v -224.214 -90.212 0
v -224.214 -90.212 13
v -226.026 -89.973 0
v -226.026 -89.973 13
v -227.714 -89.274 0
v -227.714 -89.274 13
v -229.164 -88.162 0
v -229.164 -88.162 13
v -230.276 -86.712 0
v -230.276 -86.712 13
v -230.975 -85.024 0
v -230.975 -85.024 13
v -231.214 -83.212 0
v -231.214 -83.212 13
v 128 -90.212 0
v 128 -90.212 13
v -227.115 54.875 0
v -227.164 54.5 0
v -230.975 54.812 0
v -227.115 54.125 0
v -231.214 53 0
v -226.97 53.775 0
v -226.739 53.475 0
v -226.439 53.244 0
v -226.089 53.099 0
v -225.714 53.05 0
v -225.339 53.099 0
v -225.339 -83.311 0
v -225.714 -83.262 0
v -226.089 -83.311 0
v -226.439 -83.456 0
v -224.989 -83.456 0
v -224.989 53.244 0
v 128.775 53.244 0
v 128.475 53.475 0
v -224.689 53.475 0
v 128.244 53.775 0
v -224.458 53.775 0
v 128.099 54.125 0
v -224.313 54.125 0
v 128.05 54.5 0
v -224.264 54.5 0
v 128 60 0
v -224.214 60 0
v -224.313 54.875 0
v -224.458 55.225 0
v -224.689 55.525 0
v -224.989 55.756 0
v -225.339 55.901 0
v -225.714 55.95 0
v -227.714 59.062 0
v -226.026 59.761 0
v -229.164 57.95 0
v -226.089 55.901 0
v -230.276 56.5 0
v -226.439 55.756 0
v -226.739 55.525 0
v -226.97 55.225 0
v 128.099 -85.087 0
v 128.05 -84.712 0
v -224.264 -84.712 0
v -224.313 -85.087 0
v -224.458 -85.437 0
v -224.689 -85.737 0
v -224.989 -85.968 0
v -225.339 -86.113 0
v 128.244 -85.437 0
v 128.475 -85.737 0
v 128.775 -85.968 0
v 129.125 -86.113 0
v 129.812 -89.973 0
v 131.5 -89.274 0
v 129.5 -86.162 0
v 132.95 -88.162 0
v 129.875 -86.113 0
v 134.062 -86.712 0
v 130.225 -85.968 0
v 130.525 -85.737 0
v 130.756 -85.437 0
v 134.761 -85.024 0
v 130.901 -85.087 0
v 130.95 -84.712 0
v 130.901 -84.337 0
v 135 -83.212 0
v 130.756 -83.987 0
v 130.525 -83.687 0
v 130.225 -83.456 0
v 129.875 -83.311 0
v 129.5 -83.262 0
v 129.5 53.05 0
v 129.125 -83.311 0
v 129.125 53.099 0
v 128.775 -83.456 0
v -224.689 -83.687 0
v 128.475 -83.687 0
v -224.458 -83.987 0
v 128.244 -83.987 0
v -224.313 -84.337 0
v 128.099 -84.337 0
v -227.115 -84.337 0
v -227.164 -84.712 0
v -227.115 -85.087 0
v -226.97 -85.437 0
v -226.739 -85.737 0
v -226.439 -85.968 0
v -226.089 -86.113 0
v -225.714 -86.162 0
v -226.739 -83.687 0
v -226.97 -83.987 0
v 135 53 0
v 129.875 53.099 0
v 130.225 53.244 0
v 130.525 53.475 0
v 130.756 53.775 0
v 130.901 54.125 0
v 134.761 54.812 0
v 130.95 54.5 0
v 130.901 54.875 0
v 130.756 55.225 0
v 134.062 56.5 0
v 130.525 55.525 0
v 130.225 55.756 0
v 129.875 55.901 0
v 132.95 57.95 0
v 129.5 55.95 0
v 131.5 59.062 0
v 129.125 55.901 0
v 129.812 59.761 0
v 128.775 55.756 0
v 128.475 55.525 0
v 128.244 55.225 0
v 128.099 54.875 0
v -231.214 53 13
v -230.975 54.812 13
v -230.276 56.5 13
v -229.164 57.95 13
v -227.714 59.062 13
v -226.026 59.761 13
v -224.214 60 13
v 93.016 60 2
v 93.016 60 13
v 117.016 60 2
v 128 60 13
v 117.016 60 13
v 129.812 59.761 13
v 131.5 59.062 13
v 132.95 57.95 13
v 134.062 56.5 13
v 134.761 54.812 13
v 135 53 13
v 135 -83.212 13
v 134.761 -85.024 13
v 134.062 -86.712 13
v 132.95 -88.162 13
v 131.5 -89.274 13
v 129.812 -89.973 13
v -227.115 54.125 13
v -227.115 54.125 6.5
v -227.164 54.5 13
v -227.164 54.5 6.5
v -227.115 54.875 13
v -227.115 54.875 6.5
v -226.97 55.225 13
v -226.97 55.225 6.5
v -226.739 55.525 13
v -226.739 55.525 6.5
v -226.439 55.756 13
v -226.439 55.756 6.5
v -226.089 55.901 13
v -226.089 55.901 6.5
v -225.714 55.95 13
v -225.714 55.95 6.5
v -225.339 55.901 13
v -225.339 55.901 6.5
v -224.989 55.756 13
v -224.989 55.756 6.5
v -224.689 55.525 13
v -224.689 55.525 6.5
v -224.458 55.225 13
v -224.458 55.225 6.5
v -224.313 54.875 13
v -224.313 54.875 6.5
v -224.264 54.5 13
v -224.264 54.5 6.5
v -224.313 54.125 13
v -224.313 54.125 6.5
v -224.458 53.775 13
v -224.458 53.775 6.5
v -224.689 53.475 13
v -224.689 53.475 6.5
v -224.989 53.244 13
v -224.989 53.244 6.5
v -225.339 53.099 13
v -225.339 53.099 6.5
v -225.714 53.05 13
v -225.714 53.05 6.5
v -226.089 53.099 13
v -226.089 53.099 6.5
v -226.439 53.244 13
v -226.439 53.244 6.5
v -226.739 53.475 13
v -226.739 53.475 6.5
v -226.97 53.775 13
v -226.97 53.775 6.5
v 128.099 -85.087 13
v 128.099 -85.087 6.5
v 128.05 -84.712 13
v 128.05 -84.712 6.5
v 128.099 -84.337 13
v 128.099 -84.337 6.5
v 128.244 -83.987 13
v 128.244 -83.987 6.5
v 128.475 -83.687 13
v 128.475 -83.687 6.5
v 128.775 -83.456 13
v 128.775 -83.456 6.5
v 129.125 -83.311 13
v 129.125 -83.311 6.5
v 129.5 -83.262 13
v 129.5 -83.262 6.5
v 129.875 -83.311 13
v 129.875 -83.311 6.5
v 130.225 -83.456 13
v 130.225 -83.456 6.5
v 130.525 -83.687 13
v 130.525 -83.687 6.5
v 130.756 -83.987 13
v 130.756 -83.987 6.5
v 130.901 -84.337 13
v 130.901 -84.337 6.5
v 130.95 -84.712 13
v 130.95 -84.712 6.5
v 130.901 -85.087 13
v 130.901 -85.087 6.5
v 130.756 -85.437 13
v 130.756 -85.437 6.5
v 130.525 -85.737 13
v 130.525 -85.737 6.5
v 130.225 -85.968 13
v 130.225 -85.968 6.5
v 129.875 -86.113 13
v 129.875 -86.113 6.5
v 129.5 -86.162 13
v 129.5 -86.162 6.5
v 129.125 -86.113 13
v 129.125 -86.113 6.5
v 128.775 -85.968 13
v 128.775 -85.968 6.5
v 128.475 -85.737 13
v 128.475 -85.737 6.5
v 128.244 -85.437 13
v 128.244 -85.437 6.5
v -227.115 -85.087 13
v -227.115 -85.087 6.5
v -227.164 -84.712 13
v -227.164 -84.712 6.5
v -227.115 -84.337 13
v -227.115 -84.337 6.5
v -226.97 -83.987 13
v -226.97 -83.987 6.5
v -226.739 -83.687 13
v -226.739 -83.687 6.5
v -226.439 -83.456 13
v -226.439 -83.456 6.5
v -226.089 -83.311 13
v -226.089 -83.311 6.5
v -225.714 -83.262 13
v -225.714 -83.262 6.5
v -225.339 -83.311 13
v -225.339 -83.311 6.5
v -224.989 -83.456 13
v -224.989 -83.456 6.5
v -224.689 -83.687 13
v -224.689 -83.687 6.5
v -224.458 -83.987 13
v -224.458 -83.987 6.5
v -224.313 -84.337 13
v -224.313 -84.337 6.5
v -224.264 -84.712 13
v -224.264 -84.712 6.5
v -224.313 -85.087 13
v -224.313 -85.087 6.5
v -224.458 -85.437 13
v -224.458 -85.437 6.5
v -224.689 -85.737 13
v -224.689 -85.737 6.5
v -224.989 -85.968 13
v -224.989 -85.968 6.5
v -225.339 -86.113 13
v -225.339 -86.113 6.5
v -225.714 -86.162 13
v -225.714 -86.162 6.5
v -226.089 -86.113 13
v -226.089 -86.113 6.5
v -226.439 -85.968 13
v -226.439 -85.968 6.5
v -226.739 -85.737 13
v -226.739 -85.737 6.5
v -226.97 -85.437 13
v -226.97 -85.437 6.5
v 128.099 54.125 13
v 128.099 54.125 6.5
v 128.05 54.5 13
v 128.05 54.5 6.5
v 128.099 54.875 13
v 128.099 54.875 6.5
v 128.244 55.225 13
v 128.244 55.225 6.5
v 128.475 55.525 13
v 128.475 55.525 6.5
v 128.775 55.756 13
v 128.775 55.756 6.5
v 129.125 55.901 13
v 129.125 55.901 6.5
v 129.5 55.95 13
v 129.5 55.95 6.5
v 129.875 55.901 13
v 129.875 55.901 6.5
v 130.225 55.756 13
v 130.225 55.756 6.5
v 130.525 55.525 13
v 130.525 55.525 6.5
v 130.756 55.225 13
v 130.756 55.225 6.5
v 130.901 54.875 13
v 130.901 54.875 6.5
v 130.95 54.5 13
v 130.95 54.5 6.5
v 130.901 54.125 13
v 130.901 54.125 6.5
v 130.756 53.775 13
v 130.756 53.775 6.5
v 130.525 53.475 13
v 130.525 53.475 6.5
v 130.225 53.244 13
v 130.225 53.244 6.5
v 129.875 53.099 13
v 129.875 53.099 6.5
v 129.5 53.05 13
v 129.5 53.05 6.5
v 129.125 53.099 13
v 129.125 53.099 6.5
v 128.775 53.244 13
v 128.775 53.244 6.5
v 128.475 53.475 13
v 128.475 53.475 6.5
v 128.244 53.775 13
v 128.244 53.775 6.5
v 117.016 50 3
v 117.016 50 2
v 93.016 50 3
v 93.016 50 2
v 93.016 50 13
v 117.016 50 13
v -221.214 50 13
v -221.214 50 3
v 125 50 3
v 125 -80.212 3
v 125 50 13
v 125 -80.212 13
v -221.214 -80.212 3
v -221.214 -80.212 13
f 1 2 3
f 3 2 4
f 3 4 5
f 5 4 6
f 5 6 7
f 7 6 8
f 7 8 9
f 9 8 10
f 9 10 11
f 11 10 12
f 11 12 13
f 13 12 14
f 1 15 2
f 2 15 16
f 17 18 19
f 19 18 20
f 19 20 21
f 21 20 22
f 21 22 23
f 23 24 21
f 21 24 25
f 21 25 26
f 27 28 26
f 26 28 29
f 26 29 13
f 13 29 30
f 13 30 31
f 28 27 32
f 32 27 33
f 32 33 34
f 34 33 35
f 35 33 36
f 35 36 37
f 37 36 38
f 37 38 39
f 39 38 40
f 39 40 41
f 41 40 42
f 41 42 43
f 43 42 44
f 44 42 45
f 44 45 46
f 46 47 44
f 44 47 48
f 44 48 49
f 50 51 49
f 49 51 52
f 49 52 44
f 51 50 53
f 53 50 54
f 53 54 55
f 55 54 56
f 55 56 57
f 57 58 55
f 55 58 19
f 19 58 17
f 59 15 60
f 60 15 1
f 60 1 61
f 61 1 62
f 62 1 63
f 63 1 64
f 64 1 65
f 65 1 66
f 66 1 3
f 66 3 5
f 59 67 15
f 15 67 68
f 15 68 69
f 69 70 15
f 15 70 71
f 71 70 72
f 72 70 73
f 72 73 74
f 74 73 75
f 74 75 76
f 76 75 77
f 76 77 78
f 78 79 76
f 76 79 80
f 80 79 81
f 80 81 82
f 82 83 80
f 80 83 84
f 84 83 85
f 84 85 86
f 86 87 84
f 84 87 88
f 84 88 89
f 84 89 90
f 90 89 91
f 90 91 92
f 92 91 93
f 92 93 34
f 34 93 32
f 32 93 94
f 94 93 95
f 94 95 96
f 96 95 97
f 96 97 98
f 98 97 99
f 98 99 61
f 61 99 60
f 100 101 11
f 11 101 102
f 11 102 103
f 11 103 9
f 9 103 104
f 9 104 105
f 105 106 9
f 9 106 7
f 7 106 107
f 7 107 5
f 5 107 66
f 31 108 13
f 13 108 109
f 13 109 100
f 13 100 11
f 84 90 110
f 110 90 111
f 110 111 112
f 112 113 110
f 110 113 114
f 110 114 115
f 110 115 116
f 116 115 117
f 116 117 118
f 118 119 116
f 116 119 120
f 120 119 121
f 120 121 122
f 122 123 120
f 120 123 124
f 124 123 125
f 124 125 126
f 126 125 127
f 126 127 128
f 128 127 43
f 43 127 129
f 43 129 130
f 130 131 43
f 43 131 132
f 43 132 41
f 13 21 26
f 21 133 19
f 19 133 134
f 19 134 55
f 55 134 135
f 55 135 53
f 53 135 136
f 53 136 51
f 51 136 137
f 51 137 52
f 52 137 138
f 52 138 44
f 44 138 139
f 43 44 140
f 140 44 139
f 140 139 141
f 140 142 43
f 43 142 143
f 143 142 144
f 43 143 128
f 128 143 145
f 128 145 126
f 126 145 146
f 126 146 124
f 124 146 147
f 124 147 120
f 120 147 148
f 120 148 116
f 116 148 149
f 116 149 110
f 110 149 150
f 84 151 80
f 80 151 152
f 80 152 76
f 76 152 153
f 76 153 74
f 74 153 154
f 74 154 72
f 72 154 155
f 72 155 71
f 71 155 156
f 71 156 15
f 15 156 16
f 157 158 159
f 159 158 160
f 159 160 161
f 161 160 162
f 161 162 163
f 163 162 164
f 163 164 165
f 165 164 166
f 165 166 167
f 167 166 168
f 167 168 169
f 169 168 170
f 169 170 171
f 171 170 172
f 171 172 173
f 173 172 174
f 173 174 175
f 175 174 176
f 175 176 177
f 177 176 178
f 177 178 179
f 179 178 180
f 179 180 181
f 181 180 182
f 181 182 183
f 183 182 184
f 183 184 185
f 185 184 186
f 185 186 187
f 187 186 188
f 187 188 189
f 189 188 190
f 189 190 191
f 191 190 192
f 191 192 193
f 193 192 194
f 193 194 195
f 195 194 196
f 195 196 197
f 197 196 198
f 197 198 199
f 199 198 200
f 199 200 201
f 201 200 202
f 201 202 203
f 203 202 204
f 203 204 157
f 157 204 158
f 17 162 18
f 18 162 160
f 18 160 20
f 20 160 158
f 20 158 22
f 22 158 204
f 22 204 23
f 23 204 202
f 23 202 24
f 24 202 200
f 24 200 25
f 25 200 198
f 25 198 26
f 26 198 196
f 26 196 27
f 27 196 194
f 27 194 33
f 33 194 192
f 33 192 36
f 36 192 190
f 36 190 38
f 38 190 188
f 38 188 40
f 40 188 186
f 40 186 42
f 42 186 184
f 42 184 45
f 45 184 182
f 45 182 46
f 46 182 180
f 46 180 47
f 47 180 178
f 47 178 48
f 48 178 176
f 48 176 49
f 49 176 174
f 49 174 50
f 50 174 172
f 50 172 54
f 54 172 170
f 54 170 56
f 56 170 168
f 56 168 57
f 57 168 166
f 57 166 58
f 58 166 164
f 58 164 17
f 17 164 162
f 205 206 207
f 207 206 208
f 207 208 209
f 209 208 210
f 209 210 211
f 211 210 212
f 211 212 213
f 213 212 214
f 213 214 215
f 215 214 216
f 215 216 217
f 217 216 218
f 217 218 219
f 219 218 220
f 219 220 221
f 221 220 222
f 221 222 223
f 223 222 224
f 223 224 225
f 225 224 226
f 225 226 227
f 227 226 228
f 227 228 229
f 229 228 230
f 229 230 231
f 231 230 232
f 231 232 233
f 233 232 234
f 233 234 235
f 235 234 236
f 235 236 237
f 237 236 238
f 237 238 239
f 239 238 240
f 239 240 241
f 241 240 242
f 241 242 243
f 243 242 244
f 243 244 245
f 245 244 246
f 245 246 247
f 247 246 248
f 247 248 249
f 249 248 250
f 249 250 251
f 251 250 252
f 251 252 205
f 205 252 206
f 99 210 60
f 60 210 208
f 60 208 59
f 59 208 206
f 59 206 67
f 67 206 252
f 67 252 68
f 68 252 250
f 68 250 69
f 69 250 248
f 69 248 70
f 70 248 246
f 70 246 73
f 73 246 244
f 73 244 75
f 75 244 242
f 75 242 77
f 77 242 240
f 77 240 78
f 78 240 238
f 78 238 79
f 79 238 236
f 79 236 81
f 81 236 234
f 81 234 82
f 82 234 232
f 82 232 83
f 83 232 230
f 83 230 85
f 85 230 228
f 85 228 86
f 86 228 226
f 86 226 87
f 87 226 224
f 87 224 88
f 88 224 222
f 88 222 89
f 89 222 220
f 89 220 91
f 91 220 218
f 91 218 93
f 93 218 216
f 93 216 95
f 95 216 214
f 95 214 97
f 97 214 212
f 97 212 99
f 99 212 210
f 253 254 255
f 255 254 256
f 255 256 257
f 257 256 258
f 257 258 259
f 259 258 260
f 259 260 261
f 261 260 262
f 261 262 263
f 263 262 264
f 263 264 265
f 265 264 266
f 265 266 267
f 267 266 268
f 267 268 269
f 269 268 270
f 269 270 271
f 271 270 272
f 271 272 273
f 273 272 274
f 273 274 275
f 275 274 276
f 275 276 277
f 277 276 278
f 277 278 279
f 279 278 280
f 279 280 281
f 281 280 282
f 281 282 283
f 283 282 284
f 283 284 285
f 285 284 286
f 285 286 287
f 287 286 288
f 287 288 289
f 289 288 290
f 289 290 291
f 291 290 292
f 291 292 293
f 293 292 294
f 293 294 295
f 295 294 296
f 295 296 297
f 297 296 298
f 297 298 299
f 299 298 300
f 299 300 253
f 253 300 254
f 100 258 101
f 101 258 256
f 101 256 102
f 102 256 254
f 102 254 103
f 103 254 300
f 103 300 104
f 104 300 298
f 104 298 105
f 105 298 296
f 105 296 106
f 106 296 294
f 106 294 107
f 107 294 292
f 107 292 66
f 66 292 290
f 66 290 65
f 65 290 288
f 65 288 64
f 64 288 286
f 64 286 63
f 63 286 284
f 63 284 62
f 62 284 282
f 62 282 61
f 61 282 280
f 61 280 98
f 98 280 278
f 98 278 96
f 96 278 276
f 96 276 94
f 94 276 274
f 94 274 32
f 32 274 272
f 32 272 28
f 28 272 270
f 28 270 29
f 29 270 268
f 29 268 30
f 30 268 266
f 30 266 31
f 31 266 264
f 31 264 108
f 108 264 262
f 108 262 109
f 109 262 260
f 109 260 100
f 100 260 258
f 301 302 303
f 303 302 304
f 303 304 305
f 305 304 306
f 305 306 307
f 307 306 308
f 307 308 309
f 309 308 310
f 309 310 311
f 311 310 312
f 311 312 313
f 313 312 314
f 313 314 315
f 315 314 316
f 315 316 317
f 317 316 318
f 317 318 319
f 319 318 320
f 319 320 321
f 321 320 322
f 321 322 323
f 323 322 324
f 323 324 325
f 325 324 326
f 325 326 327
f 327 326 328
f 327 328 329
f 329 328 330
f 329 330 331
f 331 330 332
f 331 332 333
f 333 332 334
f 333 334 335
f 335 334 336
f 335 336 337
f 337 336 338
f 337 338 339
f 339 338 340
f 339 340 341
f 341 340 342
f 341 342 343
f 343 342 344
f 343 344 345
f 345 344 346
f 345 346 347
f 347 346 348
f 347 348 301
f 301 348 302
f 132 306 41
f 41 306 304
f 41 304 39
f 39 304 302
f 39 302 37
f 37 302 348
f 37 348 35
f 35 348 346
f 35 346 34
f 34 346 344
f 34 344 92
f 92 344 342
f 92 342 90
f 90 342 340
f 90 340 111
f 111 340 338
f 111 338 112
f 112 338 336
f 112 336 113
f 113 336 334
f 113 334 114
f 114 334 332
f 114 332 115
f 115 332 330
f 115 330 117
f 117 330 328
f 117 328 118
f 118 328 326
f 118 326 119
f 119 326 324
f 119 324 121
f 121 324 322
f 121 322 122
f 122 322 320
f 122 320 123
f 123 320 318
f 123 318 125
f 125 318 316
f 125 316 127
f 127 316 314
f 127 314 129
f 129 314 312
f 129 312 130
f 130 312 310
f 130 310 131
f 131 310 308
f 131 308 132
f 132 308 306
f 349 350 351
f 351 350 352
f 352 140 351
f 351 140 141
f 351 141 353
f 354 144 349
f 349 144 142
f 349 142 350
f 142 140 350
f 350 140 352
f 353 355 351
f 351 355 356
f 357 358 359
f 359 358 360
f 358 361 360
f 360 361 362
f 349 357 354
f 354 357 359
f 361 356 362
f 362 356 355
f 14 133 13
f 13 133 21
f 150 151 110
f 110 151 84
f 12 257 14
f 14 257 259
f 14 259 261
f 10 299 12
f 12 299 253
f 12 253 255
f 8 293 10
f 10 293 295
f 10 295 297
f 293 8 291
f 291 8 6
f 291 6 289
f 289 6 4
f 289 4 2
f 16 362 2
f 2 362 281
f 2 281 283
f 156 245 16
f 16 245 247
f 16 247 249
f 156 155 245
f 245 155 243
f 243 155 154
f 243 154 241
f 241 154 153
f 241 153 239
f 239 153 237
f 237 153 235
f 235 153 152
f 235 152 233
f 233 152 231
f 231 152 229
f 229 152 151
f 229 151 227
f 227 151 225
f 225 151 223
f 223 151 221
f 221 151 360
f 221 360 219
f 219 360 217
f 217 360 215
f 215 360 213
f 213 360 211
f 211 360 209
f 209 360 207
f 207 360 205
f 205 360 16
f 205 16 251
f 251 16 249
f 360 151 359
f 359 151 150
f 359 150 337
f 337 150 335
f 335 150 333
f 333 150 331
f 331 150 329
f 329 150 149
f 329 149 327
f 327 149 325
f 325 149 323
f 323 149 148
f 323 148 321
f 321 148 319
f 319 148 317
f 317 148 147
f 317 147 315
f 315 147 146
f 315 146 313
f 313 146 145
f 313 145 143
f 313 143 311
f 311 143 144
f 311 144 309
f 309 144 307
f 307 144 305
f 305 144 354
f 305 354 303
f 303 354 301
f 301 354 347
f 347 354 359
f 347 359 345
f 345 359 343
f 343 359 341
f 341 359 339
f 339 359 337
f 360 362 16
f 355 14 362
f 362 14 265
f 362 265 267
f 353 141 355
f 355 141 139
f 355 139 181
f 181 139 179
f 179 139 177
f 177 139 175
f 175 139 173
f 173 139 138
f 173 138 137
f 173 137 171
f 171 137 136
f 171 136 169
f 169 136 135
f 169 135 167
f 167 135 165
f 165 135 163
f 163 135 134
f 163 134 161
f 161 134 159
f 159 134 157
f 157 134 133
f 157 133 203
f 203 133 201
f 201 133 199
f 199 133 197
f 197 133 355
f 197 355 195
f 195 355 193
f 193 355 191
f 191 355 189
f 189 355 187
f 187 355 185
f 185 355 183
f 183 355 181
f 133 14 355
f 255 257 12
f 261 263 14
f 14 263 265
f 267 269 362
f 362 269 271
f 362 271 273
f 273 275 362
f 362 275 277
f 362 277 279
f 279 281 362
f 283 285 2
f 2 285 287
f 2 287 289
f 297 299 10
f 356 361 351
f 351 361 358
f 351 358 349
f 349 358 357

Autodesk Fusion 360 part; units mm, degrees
sketch "Sketch1" plane through (0, 0, 0) normal (0, 0, 1) x (1, 0, 0)
  line L0 (-221.214, 50) -> (125, 50)
  line L1 (125, 50) -> (125, -80.212)
  line L2 (125, -80.212) -> (-221.214, -80.212)
  line L3 (-221.214, -80.212) -> (-221.214, 50)
  line L4 (-231.214, 60) -> (135, 60)
  line L5 (135, 60) -> (135, -90.212)
  line L6 (135, -90.212) -> (-231.214, -90.212)
  line L7 (-231.214, -90.212) -> (-231.214, 60)
  circle A0 centre (-225.714, 54.5) radius 1.45
  circle A1 centre (129.5, 54.5) radius 1.45
  circle A2 centre (129.5, -84.712) radius 1.45
  circle A3 centre (-225.714, -84.712) radius 1.45
  dimension "d1" = 130.212
  dimension "d2" = 346.214
  dimension "d3" = 10
  dimension "d4" = 10
  dimension "d5" = 10
  dimension "d6" = 10
  dimension "d15" = 2.9
  dimension "d16" = 5.5
  dimension "d17" = 5.5
  dimension "d18" = 2.9
  dimension "d19" = 5.5
  dimension "d20" = 5.5
  dimension "d21" = 2.9
  dimension "d22" = 5.5
  dimension "d23" = 5.5
  dimension "d24" = 2.9
  dimension "d25" = 5.5
  dimension "d26" = 5.5
extrude "Extrude1" add sketch "Sketch1" along normal blind 3 contours L0 L1 L2 L3
extrude "Extrude2" add sketch "Sketch1" along normal blind 13 contours L4 L5 L6 L7 | A0 | A1 | A2 | A3
sketch "Sketch3" plane through (0, 60, 0) normal (0, 1, 0) x (-1, 0, 0)
  line L0 (-135, 0) -> (231.214, 0)
  line L1 (231.214, 0) -> (231.214, 13)
  line L2 (231.214, 13) -> (-135, 13)
  line L3 (-135, 13) -> (-135, 0)
  line L4 (-117.016, 13) -> (-93.016, 13)
  line L5 (-93.016, 13) -> (-93.016, 2)
  line L6 (-93.016, 2) -> (-117.016, 2)
  line L7 (-117.016, 2) -> (-117.016, 13)
  dimension "d11" = 24
  dimension "d12" = 17.984
extrude "Extrude3" cut sketch "Sketch3" against normal blind 10 contours L2 L4 L5 L6 L7
extrude "Extrude4" cut sketch "Sketch1" along normal blind 13 contours A0 | A1 | A2 | A3
fillet "Fillet1" radius 7 4 edges at (135, -90.212, 6.5) (135, 60, 6.5) (-231.214, 60, 6.5) (-231.214, -90.212, 6.5)
